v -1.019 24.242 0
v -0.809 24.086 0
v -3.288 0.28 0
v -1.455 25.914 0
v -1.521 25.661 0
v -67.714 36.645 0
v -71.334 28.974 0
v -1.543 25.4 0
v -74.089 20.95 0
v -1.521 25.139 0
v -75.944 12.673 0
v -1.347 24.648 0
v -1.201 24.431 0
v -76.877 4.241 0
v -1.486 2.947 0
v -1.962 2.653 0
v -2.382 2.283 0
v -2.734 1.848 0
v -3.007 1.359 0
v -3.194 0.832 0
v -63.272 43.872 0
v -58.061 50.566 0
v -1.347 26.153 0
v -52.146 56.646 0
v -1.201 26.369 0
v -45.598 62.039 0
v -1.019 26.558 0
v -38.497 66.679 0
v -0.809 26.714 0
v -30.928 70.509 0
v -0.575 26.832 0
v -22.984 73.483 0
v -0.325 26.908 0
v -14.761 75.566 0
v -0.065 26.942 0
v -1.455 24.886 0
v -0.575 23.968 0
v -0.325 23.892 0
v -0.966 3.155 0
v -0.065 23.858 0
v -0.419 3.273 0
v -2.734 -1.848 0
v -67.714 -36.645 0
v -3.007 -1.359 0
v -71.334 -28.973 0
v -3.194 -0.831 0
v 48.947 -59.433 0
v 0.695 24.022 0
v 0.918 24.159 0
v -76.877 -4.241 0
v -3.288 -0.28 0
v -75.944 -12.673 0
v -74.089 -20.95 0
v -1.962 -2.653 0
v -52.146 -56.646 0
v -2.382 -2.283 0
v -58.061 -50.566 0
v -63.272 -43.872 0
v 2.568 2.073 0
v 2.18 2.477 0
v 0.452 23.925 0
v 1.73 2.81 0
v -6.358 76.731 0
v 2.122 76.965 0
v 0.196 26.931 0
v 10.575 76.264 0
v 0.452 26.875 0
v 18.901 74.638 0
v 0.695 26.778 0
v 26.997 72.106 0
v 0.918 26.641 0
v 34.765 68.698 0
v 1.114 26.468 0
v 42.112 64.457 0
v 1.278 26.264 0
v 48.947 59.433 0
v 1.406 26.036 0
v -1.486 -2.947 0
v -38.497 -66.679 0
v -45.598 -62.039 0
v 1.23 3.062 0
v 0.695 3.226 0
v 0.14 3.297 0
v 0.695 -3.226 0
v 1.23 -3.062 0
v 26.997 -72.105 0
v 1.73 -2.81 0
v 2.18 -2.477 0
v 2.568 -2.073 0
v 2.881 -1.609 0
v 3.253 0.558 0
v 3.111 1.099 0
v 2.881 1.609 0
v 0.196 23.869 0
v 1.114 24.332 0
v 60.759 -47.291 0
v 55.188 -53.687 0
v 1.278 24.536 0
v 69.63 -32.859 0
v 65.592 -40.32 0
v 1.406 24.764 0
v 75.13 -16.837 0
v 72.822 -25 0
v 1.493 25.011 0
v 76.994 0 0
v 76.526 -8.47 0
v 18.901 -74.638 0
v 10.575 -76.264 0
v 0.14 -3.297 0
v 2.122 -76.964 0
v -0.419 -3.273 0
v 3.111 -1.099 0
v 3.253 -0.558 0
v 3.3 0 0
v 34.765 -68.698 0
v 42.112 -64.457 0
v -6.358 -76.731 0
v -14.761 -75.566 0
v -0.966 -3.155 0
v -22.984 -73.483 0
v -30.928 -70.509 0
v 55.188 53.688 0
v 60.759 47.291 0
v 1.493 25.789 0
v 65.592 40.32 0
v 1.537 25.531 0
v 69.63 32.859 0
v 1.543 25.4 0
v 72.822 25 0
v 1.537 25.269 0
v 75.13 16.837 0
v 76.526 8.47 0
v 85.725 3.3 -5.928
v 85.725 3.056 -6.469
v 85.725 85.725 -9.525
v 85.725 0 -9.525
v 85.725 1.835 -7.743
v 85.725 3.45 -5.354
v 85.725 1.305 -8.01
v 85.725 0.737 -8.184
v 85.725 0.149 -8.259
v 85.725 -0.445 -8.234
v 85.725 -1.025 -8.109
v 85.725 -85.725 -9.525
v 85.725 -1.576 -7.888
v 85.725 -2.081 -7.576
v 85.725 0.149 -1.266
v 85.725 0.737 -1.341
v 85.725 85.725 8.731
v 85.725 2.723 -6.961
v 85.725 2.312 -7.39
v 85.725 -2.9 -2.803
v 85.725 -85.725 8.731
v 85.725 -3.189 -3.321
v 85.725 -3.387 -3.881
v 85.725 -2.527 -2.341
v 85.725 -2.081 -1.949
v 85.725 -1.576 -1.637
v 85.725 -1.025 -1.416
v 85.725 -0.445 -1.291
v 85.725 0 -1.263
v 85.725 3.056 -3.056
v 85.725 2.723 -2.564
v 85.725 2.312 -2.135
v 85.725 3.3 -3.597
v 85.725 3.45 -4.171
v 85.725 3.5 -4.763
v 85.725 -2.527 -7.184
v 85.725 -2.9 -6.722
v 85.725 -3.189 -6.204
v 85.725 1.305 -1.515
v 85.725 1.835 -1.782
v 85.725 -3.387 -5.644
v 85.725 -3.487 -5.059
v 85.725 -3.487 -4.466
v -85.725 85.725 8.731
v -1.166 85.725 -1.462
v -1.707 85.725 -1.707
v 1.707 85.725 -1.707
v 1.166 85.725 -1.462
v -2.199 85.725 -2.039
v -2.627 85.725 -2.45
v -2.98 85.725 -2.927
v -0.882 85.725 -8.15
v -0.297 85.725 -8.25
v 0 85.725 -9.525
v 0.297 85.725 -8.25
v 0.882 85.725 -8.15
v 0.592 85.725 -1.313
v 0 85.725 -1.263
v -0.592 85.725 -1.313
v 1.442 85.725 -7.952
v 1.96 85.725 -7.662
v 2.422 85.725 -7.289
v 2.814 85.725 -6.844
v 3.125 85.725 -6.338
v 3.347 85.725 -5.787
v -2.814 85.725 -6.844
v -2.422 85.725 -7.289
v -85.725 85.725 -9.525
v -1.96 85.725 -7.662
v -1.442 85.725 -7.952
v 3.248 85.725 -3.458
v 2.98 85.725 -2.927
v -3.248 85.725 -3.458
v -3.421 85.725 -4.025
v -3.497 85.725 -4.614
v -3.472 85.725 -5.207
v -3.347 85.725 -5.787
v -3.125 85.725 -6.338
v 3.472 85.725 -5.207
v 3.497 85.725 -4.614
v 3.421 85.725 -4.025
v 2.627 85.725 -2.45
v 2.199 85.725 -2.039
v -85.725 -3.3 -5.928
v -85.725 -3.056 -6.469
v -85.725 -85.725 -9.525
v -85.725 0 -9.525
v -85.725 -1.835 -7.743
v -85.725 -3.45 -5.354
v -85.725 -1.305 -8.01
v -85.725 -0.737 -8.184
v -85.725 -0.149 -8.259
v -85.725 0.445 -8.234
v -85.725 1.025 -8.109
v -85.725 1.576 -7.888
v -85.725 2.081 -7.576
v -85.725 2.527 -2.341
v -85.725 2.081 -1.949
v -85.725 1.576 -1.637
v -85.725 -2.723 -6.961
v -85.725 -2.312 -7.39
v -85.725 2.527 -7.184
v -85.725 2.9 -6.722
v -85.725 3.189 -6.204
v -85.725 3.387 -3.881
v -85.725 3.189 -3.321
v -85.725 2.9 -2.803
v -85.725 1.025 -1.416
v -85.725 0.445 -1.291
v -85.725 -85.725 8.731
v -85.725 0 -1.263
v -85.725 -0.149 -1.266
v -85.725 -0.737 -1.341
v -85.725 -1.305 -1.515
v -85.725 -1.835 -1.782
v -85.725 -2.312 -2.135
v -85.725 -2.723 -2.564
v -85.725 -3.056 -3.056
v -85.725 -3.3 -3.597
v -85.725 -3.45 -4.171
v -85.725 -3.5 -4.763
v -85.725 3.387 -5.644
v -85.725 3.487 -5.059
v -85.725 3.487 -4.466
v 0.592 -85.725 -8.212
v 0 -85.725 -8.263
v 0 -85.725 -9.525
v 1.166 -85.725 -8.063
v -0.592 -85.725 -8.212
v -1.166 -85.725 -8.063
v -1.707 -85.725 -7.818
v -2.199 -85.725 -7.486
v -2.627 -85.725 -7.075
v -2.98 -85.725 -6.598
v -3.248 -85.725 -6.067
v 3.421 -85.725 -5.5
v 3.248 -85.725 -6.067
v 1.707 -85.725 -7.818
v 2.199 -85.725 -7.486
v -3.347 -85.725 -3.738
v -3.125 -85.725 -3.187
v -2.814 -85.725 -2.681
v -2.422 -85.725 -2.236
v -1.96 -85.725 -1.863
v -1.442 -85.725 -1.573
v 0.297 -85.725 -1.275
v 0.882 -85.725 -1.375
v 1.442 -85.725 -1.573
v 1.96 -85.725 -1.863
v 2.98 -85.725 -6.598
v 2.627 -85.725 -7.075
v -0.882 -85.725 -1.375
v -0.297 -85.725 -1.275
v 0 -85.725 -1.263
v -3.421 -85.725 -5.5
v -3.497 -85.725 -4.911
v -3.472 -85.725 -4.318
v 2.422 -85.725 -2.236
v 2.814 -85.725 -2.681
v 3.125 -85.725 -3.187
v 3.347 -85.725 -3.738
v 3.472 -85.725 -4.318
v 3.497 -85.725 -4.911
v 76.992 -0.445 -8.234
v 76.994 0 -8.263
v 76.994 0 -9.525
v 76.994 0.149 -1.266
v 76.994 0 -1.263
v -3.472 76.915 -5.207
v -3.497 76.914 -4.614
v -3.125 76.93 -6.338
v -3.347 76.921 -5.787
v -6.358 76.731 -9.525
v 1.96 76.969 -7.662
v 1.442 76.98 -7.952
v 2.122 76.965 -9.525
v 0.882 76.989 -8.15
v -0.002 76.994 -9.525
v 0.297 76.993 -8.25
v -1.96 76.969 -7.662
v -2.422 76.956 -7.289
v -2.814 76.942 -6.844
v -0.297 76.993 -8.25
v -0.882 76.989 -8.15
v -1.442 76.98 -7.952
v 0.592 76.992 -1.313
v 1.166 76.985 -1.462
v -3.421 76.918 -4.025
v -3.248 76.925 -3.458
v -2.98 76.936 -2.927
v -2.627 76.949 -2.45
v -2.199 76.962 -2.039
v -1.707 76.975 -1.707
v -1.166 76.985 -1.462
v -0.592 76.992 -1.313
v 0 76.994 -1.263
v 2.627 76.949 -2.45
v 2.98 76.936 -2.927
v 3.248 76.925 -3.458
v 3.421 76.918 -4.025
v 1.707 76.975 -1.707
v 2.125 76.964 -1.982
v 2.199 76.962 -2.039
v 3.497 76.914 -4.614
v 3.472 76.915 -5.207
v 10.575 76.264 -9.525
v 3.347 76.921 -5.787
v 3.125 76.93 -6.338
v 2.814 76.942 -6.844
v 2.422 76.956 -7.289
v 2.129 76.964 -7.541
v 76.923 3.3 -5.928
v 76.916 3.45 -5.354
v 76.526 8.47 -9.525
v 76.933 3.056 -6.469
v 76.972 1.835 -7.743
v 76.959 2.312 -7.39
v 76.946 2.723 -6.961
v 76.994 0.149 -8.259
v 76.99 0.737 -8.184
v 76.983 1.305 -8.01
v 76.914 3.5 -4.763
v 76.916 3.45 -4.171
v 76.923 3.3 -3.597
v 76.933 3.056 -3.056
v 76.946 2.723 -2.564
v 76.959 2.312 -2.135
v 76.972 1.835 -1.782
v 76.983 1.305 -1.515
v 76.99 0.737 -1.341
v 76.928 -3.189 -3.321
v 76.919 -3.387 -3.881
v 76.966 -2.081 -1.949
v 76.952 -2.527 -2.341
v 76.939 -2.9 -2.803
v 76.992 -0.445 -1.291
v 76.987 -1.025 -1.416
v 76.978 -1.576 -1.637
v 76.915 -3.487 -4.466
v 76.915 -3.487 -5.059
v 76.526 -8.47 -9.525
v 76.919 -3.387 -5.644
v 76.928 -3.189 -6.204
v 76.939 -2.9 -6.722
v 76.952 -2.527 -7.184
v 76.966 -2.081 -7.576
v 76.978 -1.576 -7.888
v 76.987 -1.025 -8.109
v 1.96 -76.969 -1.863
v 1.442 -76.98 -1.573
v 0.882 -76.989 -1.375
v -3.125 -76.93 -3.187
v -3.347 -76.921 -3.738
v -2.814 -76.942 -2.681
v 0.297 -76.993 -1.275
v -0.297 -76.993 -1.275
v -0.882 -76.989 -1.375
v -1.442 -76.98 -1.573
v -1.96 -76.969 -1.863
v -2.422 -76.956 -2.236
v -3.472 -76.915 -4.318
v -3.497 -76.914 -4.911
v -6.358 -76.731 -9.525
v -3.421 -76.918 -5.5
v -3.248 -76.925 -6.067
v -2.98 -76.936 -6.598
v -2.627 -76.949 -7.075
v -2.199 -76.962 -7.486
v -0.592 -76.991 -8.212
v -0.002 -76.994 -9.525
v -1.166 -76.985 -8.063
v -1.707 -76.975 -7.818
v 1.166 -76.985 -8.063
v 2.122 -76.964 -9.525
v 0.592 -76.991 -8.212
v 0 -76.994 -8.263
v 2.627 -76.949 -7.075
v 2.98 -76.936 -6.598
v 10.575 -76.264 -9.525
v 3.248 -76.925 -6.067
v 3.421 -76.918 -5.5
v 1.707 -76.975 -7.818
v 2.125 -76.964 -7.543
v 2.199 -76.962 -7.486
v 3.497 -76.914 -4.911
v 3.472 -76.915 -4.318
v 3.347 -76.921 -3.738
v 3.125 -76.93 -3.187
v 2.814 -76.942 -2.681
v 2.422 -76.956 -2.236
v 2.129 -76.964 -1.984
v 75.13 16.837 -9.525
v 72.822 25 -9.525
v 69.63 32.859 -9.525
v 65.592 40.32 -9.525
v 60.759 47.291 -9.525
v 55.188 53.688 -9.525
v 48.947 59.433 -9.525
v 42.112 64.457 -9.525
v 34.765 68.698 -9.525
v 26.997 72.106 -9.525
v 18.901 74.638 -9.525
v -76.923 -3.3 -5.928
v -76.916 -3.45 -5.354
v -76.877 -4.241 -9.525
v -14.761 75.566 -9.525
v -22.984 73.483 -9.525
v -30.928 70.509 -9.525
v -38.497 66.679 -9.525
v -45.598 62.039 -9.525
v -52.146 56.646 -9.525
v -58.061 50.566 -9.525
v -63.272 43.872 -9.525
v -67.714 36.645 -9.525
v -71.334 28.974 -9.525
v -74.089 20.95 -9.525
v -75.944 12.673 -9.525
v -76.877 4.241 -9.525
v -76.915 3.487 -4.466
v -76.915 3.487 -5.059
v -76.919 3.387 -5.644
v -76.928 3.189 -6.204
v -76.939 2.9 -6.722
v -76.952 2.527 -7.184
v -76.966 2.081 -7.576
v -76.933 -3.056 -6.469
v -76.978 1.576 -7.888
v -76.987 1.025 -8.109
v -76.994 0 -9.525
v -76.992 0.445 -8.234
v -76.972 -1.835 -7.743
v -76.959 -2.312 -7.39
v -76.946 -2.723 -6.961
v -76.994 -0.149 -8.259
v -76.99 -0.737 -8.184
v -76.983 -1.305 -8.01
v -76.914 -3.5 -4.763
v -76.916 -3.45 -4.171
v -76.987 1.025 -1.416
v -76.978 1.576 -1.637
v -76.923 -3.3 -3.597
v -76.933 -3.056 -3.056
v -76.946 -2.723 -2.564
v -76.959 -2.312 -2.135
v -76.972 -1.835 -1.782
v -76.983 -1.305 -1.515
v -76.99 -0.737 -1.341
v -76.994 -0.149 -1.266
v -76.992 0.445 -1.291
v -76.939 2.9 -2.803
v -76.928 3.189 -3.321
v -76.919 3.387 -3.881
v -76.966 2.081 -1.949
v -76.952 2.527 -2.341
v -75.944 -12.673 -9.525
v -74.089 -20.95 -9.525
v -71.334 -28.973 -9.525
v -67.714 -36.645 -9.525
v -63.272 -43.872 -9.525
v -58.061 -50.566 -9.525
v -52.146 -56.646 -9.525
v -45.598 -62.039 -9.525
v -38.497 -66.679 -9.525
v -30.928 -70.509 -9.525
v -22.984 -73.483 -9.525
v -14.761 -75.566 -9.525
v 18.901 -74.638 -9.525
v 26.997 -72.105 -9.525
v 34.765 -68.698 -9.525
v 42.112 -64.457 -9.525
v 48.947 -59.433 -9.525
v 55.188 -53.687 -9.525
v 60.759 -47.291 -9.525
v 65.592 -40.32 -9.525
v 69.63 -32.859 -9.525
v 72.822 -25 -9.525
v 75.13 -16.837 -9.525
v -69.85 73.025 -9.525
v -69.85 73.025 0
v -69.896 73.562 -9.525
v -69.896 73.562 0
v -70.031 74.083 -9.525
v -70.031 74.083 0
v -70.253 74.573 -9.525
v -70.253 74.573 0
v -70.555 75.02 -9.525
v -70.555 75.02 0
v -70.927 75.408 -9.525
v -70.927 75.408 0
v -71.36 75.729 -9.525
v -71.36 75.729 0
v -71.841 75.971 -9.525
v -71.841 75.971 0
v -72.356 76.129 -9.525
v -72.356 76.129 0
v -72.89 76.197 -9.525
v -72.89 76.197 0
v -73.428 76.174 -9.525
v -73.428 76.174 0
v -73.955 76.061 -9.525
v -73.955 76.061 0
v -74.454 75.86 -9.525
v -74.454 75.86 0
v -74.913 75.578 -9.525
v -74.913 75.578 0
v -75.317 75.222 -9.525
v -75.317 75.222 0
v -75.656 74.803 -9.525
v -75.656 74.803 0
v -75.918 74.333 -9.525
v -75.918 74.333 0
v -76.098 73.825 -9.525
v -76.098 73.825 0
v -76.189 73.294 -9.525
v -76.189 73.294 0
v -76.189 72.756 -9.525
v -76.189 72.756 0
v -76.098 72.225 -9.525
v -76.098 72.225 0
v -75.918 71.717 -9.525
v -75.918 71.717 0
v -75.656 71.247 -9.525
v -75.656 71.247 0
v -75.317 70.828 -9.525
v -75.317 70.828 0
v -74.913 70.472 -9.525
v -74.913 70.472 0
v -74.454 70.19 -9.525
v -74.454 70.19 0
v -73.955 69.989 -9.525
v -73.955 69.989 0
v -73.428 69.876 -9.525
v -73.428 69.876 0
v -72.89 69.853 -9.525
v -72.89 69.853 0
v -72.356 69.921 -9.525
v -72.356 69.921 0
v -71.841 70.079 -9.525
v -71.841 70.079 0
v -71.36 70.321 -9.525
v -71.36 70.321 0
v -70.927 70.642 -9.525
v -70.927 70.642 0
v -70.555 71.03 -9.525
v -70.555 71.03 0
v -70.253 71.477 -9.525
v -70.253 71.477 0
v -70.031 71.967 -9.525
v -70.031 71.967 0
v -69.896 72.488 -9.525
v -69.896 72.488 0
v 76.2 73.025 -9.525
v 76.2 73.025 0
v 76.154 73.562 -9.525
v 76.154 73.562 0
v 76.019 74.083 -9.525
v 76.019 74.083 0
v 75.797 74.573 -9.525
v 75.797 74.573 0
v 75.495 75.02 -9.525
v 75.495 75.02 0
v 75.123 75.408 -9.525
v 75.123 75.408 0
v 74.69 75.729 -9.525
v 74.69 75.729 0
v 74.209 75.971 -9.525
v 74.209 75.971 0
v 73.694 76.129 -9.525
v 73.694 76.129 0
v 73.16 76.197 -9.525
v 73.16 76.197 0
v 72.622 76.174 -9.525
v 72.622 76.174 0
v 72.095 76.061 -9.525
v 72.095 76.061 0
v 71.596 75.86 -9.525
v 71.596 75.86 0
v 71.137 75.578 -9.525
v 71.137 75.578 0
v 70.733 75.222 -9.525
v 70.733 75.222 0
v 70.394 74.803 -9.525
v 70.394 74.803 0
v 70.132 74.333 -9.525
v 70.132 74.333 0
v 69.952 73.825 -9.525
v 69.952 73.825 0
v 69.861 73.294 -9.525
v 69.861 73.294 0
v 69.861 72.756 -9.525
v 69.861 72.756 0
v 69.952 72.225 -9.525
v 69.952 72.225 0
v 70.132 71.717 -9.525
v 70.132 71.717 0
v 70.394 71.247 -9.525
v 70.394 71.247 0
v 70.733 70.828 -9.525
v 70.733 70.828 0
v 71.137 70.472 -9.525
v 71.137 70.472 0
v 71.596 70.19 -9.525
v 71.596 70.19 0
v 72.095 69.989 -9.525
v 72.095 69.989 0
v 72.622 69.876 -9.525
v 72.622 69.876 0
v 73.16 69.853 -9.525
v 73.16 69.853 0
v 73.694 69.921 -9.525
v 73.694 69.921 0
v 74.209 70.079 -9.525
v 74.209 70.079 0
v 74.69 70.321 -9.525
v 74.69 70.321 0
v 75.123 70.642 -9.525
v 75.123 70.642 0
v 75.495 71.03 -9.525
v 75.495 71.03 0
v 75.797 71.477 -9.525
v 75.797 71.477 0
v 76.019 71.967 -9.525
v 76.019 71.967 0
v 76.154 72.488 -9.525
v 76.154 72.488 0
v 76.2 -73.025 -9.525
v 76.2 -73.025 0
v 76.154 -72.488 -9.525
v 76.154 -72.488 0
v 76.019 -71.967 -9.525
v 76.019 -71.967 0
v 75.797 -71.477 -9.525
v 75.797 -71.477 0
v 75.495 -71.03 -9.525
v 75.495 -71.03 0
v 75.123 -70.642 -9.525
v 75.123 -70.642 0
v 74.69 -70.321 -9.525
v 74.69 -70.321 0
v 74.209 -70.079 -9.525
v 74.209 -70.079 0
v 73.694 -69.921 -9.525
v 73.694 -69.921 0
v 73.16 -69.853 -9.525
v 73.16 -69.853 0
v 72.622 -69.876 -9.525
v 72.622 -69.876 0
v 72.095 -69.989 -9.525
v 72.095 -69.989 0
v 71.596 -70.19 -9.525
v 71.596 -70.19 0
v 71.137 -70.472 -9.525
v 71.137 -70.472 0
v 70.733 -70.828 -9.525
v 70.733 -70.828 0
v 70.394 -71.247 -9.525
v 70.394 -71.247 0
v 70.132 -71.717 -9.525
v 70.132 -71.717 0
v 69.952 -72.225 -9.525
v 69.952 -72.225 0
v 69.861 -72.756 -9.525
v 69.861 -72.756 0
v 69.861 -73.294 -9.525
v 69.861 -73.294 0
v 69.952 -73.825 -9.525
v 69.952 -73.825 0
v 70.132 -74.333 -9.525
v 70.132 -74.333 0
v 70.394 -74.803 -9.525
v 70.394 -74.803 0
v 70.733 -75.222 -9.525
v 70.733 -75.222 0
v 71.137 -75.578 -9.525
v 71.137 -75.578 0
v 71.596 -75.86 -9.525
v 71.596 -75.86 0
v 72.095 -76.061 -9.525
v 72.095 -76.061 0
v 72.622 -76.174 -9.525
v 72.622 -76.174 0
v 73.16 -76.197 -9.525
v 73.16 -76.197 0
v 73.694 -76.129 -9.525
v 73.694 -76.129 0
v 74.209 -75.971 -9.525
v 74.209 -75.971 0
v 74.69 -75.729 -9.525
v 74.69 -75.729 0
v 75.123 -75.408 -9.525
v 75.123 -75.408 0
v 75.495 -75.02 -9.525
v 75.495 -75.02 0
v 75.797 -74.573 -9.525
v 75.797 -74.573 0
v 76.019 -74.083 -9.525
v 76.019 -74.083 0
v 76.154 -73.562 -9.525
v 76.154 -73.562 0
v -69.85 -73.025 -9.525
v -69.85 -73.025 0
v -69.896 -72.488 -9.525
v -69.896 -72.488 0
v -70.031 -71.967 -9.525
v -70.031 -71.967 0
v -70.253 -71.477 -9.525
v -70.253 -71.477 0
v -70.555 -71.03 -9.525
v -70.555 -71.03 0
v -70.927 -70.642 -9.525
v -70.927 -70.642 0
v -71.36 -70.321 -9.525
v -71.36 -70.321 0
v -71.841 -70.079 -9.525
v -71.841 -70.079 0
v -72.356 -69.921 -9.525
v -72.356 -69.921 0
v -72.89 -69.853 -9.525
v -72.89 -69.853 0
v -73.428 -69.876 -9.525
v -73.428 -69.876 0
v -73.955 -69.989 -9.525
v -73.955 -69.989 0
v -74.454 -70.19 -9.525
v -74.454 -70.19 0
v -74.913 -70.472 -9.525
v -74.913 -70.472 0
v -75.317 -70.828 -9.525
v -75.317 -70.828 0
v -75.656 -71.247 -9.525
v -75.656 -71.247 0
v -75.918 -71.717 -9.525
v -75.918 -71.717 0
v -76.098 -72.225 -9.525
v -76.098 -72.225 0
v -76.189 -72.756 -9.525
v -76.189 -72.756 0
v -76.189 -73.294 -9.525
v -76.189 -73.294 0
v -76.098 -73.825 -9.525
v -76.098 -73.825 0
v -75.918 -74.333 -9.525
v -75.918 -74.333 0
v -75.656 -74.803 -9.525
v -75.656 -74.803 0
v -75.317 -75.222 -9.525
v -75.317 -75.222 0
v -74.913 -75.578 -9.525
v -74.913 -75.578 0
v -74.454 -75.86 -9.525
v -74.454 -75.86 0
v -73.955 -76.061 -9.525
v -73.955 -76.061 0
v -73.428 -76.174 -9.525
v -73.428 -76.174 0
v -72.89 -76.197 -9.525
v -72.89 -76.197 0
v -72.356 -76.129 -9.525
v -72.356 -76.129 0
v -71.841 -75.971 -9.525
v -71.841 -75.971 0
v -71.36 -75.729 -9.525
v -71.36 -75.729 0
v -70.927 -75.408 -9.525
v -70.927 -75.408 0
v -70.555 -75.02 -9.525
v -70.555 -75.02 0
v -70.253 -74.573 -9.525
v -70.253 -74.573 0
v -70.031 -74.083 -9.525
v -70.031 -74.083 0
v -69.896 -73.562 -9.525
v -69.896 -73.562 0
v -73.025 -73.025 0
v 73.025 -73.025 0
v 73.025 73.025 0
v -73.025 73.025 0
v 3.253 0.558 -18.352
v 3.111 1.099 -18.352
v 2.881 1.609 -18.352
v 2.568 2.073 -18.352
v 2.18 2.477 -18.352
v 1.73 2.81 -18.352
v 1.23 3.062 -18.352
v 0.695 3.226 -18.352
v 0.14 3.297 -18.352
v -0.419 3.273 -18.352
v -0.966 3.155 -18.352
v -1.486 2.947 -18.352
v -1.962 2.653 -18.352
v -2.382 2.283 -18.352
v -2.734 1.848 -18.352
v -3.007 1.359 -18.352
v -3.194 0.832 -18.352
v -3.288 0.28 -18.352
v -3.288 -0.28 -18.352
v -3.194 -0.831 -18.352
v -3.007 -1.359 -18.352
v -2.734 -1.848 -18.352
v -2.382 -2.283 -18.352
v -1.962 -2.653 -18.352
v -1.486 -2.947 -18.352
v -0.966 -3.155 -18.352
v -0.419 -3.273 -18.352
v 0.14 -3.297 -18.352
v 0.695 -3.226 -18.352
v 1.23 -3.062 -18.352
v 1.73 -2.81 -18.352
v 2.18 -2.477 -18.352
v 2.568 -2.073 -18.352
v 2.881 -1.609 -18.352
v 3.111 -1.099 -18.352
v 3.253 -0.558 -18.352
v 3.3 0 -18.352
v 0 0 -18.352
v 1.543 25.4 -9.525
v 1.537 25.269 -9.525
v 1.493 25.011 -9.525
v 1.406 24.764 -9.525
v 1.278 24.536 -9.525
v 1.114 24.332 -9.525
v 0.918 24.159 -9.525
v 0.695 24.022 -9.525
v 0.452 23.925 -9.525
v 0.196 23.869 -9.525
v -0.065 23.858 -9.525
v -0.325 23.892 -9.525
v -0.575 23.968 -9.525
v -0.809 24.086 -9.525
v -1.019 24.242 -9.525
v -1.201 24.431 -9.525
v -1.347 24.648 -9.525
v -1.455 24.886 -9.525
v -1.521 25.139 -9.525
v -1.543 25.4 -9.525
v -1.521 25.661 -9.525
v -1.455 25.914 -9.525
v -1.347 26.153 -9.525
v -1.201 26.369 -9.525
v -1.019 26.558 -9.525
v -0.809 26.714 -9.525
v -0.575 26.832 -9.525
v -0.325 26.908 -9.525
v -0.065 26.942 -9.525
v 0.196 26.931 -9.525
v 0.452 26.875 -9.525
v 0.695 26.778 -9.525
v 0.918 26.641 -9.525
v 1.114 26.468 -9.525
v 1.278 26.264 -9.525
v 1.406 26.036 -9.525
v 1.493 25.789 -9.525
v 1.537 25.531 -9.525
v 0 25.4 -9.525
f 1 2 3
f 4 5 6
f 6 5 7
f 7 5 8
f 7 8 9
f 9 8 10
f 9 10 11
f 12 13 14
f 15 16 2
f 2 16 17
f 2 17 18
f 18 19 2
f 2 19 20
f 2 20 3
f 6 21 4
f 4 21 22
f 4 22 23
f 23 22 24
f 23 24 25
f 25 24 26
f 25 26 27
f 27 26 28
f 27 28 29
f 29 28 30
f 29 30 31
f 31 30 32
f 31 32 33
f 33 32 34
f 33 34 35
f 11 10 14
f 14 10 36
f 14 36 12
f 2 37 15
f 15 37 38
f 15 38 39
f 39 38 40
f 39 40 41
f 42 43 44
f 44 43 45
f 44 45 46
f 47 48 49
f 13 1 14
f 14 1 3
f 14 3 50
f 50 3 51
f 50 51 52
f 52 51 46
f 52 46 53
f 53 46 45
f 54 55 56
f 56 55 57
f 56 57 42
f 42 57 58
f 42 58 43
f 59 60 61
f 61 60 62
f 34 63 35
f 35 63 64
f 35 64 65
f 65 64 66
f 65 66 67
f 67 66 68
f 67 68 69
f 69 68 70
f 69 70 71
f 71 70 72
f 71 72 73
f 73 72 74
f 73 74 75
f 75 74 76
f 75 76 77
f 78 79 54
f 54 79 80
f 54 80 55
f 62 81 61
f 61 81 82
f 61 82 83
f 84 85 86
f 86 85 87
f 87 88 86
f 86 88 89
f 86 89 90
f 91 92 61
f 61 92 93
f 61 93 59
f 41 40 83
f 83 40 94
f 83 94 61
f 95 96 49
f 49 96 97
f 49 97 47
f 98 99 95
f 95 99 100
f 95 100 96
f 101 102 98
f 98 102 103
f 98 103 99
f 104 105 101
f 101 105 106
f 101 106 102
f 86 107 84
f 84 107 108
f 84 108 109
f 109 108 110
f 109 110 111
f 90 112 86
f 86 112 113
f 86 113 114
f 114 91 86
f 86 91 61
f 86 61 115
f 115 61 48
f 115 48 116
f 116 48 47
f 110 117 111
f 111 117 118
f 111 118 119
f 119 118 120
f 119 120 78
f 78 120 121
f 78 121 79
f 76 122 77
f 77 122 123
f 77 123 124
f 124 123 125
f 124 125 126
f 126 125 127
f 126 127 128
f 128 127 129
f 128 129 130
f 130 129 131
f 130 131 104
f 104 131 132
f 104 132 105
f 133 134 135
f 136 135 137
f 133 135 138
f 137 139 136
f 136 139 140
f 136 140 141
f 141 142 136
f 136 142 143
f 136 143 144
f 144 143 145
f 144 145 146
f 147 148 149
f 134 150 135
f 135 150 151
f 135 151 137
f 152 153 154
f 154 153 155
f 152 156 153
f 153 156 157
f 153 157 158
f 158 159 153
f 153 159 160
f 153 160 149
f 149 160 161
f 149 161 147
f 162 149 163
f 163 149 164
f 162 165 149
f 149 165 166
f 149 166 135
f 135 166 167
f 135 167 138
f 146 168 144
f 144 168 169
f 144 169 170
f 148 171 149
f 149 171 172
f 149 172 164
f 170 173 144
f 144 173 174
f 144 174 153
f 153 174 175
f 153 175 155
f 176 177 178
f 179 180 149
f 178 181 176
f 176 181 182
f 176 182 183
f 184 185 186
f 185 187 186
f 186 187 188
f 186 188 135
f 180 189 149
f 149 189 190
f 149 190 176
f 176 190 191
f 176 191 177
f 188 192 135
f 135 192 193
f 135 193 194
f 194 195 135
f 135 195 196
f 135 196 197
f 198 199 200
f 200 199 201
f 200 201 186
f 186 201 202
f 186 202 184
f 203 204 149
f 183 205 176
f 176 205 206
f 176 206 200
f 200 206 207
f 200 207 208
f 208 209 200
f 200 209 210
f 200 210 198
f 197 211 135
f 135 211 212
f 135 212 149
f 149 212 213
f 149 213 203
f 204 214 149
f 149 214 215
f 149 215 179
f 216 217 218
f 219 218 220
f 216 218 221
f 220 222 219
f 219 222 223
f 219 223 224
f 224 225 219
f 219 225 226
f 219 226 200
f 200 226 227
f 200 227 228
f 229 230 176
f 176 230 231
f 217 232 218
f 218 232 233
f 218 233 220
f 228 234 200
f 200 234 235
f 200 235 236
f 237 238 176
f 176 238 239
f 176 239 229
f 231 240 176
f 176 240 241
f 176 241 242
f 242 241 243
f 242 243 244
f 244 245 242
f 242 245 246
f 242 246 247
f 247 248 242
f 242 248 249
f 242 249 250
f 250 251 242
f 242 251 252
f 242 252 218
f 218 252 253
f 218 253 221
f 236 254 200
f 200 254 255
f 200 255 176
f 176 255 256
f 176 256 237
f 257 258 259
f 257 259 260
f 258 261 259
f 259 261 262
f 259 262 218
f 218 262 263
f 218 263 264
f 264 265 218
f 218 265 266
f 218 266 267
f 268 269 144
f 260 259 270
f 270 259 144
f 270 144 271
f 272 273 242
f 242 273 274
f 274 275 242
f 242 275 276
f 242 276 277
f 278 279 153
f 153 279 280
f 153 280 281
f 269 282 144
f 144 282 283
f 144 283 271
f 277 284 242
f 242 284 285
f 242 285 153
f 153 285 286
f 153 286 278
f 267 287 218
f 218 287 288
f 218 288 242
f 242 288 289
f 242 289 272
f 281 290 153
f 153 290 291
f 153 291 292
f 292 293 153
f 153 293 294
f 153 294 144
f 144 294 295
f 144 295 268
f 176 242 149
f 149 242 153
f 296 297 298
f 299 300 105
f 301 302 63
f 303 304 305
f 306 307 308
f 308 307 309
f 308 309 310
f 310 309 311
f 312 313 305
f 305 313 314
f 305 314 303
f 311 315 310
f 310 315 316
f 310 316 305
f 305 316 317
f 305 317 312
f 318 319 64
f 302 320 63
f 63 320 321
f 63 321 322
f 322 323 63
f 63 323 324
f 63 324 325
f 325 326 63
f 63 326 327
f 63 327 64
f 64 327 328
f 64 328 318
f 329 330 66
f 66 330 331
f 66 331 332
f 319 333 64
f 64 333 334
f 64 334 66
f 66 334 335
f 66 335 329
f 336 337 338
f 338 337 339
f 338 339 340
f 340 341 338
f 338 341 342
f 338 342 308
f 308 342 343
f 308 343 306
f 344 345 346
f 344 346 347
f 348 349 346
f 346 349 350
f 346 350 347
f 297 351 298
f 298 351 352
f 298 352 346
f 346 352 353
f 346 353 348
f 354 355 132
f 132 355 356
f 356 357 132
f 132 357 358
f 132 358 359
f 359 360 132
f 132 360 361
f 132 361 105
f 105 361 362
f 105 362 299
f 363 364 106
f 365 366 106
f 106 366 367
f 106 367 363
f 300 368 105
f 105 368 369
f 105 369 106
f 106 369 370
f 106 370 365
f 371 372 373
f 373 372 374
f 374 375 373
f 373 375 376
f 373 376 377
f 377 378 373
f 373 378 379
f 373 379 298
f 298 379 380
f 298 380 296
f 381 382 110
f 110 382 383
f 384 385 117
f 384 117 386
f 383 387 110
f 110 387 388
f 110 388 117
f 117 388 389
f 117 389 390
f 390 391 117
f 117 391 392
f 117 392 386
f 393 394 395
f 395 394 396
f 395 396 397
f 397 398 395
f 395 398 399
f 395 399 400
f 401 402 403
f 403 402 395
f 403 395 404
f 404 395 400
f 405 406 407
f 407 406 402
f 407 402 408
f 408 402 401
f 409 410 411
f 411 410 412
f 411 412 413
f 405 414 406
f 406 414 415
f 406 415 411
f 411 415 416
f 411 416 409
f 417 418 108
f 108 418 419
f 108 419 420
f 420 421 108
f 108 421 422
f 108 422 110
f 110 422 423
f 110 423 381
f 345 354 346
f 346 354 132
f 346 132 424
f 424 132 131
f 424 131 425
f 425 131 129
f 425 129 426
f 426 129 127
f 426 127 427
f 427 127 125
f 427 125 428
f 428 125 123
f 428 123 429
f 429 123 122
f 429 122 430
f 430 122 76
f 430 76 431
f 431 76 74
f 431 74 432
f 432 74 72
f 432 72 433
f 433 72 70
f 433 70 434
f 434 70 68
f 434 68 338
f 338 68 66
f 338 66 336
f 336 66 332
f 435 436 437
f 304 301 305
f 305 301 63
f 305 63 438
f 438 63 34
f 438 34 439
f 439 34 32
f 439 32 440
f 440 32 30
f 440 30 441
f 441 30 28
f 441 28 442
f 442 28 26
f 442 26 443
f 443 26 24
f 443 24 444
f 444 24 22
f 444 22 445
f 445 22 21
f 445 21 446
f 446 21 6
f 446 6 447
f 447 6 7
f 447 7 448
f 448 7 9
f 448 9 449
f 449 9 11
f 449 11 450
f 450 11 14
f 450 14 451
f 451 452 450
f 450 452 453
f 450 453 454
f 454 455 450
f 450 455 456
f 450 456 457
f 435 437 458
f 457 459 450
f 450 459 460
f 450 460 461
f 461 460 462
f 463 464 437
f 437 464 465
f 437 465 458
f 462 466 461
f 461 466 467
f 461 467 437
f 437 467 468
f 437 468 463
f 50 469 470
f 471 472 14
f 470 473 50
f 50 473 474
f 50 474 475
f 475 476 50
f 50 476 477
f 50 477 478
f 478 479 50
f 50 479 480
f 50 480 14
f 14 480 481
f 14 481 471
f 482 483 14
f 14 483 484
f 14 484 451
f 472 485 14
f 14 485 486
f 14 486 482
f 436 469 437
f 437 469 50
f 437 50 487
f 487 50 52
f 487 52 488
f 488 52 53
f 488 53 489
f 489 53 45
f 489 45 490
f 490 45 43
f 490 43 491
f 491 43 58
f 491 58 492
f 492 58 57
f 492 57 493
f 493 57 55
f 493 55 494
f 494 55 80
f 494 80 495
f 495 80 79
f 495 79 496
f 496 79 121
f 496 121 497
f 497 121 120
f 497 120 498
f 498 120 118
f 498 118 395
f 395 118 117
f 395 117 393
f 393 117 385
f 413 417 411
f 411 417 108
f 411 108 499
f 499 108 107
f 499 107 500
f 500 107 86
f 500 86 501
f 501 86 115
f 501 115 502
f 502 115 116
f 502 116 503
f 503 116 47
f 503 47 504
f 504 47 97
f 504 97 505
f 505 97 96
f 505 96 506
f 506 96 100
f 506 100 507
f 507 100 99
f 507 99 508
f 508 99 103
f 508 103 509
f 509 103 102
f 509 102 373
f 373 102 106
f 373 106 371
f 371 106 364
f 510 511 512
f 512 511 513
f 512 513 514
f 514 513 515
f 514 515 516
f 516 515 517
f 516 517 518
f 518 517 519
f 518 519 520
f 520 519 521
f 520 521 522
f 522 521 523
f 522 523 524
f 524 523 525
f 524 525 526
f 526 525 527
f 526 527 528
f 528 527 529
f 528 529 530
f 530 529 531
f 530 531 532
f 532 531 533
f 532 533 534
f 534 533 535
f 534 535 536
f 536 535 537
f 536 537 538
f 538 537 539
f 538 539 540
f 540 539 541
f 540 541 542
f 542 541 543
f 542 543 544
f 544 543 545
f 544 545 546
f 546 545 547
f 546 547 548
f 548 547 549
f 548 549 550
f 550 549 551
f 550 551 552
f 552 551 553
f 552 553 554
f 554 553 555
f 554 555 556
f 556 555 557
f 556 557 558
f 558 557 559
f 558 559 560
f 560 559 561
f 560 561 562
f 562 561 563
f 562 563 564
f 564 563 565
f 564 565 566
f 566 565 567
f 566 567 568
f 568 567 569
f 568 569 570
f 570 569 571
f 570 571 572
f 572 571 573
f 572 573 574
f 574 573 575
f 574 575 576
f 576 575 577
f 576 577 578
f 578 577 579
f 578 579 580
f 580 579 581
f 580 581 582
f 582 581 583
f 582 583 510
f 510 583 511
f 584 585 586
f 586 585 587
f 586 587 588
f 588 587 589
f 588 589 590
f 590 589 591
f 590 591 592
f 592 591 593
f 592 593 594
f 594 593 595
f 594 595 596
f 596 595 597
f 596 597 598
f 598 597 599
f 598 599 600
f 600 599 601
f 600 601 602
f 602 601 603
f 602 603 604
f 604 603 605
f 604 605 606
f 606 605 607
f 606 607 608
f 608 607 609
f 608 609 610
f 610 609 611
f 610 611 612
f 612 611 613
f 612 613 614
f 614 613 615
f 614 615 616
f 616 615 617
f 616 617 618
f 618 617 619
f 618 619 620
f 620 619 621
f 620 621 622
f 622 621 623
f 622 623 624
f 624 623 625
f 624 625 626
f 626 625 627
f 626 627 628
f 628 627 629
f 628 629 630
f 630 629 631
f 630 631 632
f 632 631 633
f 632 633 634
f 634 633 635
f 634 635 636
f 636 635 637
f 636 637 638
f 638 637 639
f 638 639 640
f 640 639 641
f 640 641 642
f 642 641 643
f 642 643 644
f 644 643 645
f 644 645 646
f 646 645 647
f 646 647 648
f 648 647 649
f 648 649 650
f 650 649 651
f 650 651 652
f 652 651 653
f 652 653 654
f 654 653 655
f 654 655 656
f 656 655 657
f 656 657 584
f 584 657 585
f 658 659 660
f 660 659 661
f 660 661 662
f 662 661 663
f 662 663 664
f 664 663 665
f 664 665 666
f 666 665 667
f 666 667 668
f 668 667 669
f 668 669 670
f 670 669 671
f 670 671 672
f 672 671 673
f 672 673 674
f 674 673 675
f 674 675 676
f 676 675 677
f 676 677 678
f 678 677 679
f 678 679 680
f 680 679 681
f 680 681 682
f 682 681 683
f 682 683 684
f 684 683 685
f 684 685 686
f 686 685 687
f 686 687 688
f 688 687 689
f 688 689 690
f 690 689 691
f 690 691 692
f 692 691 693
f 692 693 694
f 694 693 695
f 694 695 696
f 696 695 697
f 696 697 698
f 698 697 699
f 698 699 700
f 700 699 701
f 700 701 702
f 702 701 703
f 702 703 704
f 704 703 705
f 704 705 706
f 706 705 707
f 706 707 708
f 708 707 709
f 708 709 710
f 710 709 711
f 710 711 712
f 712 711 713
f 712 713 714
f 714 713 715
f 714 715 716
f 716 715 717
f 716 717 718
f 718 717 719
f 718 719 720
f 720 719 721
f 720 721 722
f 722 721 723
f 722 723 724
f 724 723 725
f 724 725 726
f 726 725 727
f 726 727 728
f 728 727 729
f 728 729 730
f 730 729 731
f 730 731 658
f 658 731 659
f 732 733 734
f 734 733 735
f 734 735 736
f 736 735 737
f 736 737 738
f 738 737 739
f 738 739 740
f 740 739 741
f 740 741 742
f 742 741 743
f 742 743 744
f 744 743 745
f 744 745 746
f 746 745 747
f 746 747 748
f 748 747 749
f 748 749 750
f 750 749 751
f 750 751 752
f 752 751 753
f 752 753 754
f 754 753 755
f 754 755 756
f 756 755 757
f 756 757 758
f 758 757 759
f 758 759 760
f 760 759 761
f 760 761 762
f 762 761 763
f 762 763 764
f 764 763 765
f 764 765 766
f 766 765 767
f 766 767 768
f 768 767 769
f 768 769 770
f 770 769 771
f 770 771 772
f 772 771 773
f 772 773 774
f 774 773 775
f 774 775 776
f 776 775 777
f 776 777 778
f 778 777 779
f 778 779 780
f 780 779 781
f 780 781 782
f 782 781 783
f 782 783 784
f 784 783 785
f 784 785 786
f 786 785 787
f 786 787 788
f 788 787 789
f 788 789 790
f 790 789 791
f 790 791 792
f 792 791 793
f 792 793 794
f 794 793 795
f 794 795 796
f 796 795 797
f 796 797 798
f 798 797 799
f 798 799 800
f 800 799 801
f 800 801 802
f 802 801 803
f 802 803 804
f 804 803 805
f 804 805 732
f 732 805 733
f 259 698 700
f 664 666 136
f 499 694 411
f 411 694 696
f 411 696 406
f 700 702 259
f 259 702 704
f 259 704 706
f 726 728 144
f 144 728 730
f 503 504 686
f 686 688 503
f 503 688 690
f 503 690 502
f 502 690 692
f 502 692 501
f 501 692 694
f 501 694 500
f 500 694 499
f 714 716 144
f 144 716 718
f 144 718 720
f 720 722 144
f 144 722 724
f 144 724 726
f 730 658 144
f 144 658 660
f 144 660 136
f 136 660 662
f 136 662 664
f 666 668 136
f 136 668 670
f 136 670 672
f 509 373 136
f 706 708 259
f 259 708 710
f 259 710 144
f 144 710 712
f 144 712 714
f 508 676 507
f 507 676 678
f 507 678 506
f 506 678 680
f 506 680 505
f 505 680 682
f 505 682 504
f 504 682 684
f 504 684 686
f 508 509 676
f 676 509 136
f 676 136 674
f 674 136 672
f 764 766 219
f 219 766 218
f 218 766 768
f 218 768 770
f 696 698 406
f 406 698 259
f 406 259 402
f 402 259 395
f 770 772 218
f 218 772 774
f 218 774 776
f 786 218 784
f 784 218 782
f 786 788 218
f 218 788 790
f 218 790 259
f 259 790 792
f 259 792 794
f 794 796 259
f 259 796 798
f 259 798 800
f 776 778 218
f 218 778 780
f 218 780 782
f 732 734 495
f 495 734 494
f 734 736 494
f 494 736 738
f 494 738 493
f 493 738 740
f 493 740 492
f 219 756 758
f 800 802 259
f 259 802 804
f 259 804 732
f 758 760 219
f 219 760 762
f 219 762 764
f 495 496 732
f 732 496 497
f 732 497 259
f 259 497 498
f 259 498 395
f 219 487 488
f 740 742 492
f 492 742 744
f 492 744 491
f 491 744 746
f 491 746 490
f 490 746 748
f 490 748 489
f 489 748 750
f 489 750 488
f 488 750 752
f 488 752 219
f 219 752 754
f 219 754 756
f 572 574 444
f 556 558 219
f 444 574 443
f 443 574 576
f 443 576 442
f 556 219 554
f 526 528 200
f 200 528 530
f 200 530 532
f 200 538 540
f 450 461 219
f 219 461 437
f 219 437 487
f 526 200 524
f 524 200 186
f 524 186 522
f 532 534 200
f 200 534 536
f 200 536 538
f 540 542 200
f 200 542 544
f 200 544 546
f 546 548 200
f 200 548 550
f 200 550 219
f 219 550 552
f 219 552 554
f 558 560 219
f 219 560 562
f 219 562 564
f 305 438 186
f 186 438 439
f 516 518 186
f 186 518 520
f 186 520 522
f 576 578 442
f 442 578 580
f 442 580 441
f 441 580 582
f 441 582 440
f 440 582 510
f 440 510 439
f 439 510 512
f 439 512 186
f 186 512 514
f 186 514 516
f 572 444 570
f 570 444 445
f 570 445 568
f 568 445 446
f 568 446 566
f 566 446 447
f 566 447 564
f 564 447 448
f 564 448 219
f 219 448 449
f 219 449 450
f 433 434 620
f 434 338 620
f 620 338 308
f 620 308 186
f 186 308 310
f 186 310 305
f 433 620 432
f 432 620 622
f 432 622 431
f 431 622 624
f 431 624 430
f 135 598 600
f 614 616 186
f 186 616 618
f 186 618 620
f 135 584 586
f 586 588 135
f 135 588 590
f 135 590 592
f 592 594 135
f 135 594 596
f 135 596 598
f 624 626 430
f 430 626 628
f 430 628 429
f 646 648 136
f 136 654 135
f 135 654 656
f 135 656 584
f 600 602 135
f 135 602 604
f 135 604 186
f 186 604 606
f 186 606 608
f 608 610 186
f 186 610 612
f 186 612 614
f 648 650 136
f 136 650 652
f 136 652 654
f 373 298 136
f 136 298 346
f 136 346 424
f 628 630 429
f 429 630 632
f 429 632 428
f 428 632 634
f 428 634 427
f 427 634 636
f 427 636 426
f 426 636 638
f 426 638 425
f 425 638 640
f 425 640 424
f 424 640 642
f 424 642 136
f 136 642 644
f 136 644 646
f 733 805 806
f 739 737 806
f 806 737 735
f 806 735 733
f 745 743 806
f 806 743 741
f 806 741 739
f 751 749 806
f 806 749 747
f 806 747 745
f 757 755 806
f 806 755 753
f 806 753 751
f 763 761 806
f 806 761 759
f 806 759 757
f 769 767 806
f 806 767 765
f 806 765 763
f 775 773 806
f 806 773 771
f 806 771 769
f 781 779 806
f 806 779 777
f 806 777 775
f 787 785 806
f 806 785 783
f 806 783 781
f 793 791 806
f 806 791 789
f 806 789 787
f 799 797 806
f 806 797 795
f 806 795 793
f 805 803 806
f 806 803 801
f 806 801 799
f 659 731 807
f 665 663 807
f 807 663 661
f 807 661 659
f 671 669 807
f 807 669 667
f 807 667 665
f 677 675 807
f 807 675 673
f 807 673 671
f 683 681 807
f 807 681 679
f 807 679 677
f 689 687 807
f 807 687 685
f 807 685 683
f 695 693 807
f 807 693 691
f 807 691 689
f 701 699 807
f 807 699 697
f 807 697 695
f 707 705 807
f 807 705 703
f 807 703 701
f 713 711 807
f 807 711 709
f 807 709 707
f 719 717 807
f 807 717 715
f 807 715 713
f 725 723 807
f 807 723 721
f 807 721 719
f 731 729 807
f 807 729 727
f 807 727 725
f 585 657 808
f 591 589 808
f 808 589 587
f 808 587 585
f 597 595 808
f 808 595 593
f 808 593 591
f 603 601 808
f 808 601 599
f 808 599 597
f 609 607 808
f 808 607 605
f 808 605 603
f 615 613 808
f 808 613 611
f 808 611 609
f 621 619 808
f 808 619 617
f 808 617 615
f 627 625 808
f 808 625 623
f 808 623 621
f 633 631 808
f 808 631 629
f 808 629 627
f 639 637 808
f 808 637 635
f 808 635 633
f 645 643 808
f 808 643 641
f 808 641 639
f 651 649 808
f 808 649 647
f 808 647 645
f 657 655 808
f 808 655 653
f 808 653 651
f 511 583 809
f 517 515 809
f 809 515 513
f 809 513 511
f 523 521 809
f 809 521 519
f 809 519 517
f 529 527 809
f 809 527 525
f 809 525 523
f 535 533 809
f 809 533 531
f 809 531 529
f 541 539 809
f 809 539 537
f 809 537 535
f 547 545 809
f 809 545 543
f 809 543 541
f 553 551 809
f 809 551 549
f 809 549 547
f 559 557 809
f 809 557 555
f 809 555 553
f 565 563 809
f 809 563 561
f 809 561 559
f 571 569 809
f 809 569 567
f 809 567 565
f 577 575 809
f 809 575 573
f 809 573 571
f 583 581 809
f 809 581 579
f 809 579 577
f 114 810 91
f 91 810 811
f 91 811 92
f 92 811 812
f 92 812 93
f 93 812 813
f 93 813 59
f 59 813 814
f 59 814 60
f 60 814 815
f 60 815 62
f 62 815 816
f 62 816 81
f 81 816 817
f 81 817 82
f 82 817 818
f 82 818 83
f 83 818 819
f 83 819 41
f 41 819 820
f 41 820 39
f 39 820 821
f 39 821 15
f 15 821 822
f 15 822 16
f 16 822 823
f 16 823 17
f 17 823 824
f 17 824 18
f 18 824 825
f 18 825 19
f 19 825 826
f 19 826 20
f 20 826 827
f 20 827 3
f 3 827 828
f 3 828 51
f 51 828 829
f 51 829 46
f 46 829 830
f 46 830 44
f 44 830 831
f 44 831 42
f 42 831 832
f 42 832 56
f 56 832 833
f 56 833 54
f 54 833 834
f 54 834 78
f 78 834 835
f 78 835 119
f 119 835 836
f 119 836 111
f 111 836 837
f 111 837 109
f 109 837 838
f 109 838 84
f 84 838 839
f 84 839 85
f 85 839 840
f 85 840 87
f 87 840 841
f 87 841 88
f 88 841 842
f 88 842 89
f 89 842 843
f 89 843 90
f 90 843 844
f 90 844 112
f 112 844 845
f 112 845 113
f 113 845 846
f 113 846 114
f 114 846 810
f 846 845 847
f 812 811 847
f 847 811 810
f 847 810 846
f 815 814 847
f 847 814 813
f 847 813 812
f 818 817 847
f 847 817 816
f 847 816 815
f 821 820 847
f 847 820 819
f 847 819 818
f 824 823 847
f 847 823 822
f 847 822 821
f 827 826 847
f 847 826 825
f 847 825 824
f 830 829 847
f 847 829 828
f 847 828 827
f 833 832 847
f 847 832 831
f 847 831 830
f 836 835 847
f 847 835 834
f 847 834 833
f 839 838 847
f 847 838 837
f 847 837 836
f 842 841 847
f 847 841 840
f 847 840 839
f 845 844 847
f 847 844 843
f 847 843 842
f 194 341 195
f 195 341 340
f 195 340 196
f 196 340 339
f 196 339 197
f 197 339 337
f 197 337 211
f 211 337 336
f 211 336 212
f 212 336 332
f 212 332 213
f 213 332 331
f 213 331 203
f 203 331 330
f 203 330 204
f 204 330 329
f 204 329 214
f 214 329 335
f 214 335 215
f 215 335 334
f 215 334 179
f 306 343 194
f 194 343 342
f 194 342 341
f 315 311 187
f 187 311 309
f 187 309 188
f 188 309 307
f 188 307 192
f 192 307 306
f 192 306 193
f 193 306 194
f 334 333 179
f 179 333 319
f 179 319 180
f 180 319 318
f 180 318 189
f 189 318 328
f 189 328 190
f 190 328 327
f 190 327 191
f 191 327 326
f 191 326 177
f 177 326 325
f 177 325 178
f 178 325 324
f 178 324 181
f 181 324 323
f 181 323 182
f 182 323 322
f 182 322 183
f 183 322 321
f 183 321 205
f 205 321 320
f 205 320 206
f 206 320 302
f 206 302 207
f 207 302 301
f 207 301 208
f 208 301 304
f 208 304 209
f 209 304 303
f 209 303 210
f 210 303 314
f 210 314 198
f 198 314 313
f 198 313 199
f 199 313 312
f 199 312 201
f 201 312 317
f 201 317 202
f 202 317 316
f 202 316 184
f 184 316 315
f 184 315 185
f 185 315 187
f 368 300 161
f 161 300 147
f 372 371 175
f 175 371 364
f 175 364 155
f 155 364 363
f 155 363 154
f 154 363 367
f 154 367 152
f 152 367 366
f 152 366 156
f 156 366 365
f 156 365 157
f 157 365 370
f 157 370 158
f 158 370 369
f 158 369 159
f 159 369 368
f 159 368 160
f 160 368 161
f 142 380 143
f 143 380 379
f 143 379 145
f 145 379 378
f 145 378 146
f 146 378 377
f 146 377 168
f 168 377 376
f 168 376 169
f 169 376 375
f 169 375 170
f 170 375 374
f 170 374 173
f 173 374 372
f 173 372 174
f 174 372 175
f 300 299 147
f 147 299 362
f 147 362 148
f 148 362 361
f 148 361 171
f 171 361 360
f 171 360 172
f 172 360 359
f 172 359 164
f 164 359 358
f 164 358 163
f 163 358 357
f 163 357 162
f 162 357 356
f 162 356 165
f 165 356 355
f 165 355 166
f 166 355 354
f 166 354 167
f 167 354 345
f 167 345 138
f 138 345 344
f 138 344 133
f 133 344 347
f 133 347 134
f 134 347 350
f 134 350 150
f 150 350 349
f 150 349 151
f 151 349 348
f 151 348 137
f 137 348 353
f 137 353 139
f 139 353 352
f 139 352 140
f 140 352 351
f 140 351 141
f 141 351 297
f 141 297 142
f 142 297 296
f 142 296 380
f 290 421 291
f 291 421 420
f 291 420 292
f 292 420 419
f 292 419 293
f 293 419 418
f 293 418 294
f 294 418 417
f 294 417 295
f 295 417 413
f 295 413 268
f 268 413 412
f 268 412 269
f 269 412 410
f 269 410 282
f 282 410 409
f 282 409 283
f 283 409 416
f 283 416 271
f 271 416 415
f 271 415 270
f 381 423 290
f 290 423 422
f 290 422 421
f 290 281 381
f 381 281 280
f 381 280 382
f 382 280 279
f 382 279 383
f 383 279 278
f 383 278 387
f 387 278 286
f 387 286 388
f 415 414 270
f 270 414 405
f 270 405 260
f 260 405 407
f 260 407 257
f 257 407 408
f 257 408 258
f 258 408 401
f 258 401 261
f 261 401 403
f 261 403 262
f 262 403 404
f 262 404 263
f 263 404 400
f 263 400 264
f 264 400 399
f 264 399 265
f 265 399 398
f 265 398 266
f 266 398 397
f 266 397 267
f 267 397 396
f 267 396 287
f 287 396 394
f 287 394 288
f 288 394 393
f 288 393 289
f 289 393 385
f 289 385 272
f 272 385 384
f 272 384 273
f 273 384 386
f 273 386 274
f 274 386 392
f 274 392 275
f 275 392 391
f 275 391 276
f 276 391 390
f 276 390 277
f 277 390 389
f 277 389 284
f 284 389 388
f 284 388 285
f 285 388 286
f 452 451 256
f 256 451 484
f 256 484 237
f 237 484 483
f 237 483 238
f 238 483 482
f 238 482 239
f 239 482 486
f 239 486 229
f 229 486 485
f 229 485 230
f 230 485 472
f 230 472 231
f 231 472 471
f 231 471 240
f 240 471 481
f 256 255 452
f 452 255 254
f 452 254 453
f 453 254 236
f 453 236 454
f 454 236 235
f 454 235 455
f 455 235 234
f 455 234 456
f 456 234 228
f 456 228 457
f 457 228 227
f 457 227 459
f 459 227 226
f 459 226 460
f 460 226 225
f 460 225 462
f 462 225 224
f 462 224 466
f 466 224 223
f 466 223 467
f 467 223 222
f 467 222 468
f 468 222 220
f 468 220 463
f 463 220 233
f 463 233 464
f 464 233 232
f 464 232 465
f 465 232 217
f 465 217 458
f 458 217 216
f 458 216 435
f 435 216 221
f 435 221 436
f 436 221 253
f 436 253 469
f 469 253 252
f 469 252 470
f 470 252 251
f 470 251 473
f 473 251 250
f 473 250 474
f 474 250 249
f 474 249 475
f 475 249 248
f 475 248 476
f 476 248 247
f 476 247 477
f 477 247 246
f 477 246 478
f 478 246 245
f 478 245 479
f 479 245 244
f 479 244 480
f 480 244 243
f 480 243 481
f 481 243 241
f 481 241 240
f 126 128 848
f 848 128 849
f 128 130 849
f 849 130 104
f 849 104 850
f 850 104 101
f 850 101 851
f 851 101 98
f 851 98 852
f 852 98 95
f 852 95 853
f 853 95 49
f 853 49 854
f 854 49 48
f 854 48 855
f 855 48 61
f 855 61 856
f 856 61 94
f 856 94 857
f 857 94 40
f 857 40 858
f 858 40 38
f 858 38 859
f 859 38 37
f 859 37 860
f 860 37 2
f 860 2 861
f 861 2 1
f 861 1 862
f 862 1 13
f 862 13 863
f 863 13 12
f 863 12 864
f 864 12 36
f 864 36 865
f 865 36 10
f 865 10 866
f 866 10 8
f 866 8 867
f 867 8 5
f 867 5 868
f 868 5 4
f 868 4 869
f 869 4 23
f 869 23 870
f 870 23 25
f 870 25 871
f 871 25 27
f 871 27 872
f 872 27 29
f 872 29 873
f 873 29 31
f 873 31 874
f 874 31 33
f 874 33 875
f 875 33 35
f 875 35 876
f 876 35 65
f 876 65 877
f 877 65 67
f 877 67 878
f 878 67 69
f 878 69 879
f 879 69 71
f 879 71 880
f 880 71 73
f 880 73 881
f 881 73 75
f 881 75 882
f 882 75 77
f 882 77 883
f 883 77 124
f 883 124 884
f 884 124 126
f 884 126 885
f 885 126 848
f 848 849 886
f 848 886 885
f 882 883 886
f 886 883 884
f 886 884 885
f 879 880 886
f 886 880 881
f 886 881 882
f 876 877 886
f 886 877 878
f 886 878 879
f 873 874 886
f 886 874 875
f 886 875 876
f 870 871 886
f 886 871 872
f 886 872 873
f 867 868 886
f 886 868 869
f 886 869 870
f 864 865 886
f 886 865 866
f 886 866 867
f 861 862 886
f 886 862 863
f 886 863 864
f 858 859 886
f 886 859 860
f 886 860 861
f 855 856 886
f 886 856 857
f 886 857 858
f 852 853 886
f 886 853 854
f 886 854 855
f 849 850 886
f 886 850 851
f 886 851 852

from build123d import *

# Parameters (mm, degrees)
SKETCH1_W                = 171.45
SKETCH1_H                = 171.45
SKETCH1_R                = 1.54305
BOSS_EXTRUDE1_DEPTH      = 8.73125
SKETCH1_3_W              = 171.45
SKETCH1_3_H              = 171.45
SKETCH1_3_R              = 3.175
SKETCH1_3_R_2            = 76.99375
SKETCH1_3_R_3            = 3.3
BOSS_EXTRUDE2_DEPTH      = 9.525
SKETCH1_4_R              = 3.3
BOSS_EXTRUDE3_DEPTH      = 18.3515
CUT_EXTRUDE1_START       = -8.810843
SKETCH2_R                = 3.5
CUT_EXTRUDE1_DEPTH       = 8.810843
CIRPATTERN1_COUNT        = 4
SKETCH1_5_R              = 1.54305
BOSS_EXTRUDE4_DEPTH      = 8.73125
BOSS_EXTRUDE4_DEPTH_BACK = 9.525


with BuildPart() as part:
    # Sketch1 → Boss-Extrude1 (new body)
    with BuildSketch(Plane.XY):
        Rectangle(SKETCH1_W, SKETCH1_H)
        with Locations((0, 25.4)):
            Circle(SKETCH1_R, mode=Mode.SUBTRACT)
    extrude(amount=BOSS_EXTRUDE1_DEPTH)

    # Sketch1<3> → Boss-Extrude2 (add)
    with BuildSketch(Plane.XY):
        Rectangle(SKETCH1_3_W, SKETCH1_3_H)
        with Locations((-73.025, -73.025)):
            Circle(SKETCH1_3_R, mode=Mode.SUBTRACT)
        with Locations((73.025, -73.025)):
            Circle(SKETCH1_3_R, mode=Mode.SUBTRACT)
        with Locations((73.025, 73.025)):
            Circle(SKETCH1_3_R, mode=Mode.SUBTRACT)
        with Locations((-73.025, 73.025)):
            Circle(SKETCH1_3_R, mode=Mode.SUBTRACT)
        Circle(SKETCH1_3_R_2, mode=Mode.SUBTRACT)
        Circle(SKETCH1_3_R_3)
    extrude(amount=-BOSS_EXTRUDE2_DEPTH)

    # Sketch1<4> → Boss-Extrude3 (add)
    with BuildSketch(Plane.XY):
        Circle(SKETCH1_4_R)
    extrude(amount=-BOSS_EXTRUDE3_DEPTH)

    # Sketch2 → Cut-Extrude1 (cut)
    with BuildSketch(Plane(origin=(0, 85.725, 0), x_dir=(1, 0, 0), z_dir=(0, 1, 0)).offset(CUT_EXTRUDE1_START)):
        with Locations((0, 4.7625)):
            Circle(SKETCH2_R)
    cut_extrude1 = extrude(amount=CUT_EXTRUDE1_DEPTH, mode=Mode.SUBTRACT)

    # CirPattern1: Cut-Extrude1 ×4 about axis
    cirpattern1_axis = Axis((0, 0, -9.525), (0, 0, 1))
    for i in range(1, CIRPATTERN1_COUNT):
        add(cut_extrude1.rotate(cirpattern1_axis, i * 360 / CIRPATTERN1_COUNT), mode=Mode.SUBTRACT)

    # Sketch1<5> → Boss-Extrude4 (add, two sides)
    with BuildSketch(Plane.XY) as boss_extrude4_sk:
        with Locations((0, 25.4)):
            Circle(SKETCH1_5_R)
    extrude(amount=BOSS_EXTRUDE4_DEPTH)
    extrude(boss_extrude4_sk.sketch, amount=-BOSS_EXTRUDE4_DEPTH_BACK)


solid = part.part
